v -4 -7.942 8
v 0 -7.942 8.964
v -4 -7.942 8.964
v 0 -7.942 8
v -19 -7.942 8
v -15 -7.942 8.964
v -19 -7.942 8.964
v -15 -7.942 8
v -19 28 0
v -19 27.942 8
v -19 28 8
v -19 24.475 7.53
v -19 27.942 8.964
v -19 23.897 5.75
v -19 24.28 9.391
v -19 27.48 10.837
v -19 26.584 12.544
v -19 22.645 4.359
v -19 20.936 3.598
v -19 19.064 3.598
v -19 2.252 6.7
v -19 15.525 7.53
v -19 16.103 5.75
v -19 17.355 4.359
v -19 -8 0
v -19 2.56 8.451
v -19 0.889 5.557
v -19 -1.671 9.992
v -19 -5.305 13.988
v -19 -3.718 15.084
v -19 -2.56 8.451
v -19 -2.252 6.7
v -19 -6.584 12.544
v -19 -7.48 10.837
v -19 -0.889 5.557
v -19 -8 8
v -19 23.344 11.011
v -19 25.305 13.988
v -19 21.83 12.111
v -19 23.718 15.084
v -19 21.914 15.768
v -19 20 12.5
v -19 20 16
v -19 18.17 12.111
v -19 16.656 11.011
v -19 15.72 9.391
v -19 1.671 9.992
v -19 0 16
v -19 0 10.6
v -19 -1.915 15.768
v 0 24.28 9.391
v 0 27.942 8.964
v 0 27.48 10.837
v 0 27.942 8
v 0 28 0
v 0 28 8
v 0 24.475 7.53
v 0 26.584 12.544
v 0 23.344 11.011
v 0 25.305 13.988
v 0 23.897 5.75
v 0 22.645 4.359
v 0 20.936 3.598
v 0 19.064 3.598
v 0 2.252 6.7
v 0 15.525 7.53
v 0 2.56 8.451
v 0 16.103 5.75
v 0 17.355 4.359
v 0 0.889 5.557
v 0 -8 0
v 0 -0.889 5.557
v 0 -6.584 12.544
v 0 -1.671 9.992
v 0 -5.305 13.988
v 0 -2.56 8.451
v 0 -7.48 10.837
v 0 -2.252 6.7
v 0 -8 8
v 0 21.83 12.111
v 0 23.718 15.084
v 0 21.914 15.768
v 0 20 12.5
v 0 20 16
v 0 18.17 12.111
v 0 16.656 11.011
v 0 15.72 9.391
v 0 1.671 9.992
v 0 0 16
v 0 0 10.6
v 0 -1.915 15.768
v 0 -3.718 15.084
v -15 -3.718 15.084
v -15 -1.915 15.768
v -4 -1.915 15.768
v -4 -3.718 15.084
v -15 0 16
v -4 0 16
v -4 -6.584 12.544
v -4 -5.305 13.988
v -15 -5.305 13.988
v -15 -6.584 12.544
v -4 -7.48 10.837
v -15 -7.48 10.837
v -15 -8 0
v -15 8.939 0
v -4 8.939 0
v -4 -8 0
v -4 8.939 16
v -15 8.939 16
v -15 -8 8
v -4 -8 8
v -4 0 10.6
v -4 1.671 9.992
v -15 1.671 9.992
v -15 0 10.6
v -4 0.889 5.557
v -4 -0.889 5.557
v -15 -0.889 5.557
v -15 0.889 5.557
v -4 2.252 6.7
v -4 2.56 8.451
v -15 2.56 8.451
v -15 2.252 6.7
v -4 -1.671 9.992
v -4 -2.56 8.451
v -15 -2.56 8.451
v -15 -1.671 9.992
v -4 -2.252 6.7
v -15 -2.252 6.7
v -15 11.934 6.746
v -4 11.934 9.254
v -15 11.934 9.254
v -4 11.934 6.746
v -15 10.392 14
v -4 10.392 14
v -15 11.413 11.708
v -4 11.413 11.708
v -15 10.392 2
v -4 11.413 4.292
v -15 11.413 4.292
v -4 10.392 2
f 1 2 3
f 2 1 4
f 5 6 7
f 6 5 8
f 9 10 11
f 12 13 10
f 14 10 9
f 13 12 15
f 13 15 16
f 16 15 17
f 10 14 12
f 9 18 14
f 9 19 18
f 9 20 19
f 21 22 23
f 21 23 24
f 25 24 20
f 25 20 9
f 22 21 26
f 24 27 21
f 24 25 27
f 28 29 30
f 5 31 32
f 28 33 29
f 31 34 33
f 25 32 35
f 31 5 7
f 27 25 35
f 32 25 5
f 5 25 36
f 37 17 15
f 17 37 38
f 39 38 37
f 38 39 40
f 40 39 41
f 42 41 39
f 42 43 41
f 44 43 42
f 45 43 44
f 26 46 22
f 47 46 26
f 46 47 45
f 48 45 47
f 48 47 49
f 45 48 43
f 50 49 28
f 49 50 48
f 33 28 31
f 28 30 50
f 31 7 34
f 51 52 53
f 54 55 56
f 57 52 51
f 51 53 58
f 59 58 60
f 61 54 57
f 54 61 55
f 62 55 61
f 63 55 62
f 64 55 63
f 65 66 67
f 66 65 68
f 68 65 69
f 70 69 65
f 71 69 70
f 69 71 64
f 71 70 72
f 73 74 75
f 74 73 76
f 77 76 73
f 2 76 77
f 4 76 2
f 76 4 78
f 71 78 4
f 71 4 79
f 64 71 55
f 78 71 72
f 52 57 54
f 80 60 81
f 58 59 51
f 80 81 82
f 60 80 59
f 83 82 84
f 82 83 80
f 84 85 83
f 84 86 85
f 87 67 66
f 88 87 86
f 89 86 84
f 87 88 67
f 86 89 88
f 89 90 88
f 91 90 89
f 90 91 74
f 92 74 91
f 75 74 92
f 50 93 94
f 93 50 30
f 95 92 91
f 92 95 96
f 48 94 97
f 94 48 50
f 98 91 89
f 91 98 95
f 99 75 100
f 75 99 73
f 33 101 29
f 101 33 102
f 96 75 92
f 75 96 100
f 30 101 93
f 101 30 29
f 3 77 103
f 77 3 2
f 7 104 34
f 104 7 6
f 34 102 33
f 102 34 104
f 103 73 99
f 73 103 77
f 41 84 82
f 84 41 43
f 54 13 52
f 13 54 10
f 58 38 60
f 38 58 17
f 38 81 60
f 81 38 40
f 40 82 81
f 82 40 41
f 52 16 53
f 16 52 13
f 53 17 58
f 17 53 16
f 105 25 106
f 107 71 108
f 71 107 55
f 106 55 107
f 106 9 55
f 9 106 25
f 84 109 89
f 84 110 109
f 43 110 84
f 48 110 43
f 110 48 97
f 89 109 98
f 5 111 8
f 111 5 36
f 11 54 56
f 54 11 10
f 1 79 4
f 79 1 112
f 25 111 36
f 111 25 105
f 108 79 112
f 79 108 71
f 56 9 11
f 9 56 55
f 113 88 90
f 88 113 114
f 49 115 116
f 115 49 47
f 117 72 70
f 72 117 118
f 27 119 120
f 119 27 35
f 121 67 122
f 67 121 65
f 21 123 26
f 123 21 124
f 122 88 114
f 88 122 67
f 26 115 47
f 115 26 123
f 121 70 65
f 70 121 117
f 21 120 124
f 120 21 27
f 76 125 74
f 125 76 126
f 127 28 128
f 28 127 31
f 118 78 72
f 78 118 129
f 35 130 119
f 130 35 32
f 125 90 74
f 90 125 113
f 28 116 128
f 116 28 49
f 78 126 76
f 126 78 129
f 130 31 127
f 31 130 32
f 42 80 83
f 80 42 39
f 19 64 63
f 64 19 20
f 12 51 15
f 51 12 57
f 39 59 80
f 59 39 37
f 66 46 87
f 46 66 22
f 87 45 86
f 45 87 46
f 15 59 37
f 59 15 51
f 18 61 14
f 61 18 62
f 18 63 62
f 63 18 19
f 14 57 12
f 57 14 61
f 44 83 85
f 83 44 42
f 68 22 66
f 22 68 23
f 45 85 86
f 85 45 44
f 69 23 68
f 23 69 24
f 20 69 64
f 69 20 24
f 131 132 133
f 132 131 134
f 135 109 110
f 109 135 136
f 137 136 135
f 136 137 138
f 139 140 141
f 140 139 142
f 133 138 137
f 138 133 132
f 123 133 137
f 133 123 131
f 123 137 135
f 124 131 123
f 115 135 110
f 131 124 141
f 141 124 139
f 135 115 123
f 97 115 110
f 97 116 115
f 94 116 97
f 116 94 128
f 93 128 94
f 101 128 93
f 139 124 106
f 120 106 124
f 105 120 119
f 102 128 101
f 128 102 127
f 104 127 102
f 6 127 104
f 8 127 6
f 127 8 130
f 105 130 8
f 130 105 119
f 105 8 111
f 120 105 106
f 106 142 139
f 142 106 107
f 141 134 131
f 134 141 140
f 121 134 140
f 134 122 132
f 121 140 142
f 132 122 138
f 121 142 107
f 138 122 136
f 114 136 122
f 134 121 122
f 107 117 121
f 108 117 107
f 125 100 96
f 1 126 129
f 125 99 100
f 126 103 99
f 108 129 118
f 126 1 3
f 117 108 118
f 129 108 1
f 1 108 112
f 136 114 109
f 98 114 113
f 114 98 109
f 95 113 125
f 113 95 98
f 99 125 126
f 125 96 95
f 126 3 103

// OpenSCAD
// PRUSA iteration3
// Y idler
// GNU GPL v3
// Josef Průša <iam@josefprusa.cz> and contributors
// http://www.reprap.org/wiki/Prusa_Mendel
// http://prusamendel.org

// adjusted for M5 hole for idler

module y_idler_base(){
 translate(v = [0,0,0]) cylinder(h = 19, r=8);	
 translate(v = [0,20,0]) cylinder(h = 19, r=8);
 translate(v = [0,10,9.5]) cube(size = [16,20,19], center=true);
 translate(v = [-4,10,9.5]) cube(size = [8,16+20,19], center=true);
}

module y_idler_holes(){
 #translate(v = [0,0,-1]) cylinder(h = 25, r=2.6);	
 translate(v = [0,20,-1]) cylinder(h = 25, r=4.5);
 translate(v = [0,0,4]) cylinder(h = 11, r=12);
}

// Final part
module y_idler(){
 translate(v = [0,0,8])rotate([0,-90,0]) difference(){
  y_idler_base();
  y_idler_holes();
 }
}

y_idler();
